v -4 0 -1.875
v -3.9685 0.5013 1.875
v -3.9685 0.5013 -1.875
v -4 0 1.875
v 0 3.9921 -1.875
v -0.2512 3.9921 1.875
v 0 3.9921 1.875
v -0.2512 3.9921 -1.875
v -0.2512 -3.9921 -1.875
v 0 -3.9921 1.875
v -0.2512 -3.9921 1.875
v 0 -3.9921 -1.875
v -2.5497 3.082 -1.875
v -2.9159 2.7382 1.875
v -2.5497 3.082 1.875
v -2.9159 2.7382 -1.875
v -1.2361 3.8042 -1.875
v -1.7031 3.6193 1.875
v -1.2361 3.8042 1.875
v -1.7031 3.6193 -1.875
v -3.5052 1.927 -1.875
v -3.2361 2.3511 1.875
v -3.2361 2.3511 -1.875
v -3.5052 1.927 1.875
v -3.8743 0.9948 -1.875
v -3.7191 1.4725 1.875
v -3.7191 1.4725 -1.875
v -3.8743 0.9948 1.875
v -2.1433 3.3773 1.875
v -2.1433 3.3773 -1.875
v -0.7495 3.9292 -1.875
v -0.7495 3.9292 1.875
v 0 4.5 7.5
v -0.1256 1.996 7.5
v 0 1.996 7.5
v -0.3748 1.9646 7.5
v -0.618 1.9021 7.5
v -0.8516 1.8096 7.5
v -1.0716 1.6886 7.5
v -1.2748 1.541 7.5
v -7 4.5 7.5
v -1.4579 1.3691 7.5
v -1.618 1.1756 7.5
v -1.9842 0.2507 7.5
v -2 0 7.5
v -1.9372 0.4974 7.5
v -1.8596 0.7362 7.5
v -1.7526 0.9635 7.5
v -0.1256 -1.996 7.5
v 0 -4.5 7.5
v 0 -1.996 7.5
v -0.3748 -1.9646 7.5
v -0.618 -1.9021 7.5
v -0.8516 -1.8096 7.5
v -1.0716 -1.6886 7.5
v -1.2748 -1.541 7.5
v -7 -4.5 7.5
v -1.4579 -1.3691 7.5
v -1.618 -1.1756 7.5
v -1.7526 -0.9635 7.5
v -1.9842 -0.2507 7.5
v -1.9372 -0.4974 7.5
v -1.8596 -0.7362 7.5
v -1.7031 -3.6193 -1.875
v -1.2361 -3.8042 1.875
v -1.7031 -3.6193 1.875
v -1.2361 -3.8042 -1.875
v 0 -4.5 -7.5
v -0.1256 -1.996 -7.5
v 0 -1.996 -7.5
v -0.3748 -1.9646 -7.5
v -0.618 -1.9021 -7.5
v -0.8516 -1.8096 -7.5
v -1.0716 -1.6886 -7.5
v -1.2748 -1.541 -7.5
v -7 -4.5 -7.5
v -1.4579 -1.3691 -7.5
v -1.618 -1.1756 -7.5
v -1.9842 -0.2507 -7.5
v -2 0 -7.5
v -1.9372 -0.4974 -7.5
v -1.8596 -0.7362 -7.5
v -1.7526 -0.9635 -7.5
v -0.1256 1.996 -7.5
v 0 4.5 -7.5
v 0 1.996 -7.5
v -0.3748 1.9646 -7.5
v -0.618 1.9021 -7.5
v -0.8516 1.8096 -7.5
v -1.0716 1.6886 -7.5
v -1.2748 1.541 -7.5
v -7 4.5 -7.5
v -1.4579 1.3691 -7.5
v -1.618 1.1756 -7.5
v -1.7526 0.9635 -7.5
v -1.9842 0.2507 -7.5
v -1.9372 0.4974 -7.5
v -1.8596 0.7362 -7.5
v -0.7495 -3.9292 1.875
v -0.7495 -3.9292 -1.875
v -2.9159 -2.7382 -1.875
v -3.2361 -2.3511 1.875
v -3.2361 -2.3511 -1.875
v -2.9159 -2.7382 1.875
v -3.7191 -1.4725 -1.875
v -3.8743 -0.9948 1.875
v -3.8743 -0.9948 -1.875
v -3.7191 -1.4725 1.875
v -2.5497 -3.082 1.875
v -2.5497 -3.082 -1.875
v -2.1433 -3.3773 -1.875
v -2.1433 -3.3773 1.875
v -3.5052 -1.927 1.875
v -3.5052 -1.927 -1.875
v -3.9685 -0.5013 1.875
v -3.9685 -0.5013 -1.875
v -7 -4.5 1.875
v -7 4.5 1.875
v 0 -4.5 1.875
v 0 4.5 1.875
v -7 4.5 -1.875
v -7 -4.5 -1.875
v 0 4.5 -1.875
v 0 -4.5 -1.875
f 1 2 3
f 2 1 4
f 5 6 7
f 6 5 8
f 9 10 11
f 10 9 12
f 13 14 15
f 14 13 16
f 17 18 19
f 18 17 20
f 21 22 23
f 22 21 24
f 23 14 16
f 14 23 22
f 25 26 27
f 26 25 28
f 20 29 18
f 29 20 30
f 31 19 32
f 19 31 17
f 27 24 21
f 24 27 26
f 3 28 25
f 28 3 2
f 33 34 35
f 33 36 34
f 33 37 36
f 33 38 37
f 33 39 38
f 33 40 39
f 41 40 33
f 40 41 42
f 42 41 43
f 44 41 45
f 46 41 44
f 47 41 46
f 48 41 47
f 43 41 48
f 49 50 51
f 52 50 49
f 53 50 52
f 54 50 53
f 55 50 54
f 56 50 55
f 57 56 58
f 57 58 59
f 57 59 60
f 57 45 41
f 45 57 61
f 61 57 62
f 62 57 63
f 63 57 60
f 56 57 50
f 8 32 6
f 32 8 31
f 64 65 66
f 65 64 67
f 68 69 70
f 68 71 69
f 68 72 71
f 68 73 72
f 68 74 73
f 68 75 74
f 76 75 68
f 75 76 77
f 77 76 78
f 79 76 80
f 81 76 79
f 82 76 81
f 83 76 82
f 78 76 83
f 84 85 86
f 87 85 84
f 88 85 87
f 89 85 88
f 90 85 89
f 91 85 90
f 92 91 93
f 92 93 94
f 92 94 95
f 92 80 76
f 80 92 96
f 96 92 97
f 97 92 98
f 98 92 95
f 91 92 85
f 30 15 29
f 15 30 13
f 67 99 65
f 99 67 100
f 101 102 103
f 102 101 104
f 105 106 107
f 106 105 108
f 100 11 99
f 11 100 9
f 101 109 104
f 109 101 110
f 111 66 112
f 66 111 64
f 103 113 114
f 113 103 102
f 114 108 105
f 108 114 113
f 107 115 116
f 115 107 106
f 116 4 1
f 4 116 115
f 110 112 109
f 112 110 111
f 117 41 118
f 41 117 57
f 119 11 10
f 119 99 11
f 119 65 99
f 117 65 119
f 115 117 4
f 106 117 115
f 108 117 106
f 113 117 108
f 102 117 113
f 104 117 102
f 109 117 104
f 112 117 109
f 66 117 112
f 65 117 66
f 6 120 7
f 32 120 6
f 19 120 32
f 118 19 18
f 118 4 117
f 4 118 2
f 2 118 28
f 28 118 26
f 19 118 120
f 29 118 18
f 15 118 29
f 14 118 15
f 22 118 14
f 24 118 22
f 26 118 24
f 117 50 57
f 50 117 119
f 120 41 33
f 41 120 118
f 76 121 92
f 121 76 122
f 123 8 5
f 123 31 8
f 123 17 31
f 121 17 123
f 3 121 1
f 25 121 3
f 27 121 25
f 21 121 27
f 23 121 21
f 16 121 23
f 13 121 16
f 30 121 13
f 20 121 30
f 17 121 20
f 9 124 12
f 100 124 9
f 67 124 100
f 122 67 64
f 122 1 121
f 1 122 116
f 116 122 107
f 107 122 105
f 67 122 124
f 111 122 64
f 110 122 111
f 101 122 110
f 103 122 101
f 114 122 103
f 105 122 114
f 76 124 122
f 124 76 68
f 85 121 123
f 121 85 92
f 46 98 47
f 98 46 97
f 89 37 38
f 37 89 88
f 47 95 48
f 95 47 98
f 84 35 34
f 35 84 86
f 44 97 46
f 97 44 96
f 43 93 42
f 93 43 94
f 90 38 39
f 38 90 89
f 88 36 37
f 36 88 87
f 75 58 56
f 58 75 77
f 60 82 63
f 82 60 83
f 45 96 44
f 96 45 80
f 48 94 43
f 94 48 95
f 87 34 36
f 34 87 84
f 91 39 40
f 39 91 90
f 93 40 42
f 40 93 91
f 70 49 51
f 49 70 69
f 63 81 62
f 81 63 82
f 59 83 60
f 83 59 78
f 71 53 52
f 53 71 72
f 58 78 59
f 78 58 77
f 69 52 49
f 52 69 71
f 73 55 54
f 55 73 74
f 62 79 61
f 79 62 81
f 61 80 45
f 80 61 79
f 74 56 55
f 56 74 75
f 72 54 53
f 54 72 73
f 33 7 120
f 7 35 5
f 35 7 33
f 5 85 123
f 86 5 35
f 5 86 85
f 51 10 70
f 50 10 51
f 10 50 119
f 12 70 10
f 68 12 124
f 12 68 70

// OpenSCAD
$fn = 50;


difference() {
	union() {
		translate(v = [0, 0, -7.5000000000]) {
			cylinder(h = 15, r = 4.0000000000);
		}
		translate(v = [-7.0000000000, -4.5000000000, 1.8750000000]) {
			cube(size = [14, 9, 5.6250000000]);
		}
		translate(v = [-7.0000000000, -4.5000000000, -7.5000000000]) {
			cube(size = [14, 9, 5.6250000000]);
		}
	}
	union() {
		translate(v = [0, 0, -7.5000000000]) {
			cylinder(h = 15, r = 2.0000000000);
		}
		translate(v = [0, -250.0000000000, -250.0000000000]) {
			cube(size = [500, 500, 500]);
		}
		translate(v = [0, -250.0000000000, -250.0000000000]) {
			cube(size = [500, 500, 500]);
		}
		translate(v = [0, -250.0000000000, -250.0000000000]) {
			cube(size = [500, 500, 500]);
		}
	}
}
